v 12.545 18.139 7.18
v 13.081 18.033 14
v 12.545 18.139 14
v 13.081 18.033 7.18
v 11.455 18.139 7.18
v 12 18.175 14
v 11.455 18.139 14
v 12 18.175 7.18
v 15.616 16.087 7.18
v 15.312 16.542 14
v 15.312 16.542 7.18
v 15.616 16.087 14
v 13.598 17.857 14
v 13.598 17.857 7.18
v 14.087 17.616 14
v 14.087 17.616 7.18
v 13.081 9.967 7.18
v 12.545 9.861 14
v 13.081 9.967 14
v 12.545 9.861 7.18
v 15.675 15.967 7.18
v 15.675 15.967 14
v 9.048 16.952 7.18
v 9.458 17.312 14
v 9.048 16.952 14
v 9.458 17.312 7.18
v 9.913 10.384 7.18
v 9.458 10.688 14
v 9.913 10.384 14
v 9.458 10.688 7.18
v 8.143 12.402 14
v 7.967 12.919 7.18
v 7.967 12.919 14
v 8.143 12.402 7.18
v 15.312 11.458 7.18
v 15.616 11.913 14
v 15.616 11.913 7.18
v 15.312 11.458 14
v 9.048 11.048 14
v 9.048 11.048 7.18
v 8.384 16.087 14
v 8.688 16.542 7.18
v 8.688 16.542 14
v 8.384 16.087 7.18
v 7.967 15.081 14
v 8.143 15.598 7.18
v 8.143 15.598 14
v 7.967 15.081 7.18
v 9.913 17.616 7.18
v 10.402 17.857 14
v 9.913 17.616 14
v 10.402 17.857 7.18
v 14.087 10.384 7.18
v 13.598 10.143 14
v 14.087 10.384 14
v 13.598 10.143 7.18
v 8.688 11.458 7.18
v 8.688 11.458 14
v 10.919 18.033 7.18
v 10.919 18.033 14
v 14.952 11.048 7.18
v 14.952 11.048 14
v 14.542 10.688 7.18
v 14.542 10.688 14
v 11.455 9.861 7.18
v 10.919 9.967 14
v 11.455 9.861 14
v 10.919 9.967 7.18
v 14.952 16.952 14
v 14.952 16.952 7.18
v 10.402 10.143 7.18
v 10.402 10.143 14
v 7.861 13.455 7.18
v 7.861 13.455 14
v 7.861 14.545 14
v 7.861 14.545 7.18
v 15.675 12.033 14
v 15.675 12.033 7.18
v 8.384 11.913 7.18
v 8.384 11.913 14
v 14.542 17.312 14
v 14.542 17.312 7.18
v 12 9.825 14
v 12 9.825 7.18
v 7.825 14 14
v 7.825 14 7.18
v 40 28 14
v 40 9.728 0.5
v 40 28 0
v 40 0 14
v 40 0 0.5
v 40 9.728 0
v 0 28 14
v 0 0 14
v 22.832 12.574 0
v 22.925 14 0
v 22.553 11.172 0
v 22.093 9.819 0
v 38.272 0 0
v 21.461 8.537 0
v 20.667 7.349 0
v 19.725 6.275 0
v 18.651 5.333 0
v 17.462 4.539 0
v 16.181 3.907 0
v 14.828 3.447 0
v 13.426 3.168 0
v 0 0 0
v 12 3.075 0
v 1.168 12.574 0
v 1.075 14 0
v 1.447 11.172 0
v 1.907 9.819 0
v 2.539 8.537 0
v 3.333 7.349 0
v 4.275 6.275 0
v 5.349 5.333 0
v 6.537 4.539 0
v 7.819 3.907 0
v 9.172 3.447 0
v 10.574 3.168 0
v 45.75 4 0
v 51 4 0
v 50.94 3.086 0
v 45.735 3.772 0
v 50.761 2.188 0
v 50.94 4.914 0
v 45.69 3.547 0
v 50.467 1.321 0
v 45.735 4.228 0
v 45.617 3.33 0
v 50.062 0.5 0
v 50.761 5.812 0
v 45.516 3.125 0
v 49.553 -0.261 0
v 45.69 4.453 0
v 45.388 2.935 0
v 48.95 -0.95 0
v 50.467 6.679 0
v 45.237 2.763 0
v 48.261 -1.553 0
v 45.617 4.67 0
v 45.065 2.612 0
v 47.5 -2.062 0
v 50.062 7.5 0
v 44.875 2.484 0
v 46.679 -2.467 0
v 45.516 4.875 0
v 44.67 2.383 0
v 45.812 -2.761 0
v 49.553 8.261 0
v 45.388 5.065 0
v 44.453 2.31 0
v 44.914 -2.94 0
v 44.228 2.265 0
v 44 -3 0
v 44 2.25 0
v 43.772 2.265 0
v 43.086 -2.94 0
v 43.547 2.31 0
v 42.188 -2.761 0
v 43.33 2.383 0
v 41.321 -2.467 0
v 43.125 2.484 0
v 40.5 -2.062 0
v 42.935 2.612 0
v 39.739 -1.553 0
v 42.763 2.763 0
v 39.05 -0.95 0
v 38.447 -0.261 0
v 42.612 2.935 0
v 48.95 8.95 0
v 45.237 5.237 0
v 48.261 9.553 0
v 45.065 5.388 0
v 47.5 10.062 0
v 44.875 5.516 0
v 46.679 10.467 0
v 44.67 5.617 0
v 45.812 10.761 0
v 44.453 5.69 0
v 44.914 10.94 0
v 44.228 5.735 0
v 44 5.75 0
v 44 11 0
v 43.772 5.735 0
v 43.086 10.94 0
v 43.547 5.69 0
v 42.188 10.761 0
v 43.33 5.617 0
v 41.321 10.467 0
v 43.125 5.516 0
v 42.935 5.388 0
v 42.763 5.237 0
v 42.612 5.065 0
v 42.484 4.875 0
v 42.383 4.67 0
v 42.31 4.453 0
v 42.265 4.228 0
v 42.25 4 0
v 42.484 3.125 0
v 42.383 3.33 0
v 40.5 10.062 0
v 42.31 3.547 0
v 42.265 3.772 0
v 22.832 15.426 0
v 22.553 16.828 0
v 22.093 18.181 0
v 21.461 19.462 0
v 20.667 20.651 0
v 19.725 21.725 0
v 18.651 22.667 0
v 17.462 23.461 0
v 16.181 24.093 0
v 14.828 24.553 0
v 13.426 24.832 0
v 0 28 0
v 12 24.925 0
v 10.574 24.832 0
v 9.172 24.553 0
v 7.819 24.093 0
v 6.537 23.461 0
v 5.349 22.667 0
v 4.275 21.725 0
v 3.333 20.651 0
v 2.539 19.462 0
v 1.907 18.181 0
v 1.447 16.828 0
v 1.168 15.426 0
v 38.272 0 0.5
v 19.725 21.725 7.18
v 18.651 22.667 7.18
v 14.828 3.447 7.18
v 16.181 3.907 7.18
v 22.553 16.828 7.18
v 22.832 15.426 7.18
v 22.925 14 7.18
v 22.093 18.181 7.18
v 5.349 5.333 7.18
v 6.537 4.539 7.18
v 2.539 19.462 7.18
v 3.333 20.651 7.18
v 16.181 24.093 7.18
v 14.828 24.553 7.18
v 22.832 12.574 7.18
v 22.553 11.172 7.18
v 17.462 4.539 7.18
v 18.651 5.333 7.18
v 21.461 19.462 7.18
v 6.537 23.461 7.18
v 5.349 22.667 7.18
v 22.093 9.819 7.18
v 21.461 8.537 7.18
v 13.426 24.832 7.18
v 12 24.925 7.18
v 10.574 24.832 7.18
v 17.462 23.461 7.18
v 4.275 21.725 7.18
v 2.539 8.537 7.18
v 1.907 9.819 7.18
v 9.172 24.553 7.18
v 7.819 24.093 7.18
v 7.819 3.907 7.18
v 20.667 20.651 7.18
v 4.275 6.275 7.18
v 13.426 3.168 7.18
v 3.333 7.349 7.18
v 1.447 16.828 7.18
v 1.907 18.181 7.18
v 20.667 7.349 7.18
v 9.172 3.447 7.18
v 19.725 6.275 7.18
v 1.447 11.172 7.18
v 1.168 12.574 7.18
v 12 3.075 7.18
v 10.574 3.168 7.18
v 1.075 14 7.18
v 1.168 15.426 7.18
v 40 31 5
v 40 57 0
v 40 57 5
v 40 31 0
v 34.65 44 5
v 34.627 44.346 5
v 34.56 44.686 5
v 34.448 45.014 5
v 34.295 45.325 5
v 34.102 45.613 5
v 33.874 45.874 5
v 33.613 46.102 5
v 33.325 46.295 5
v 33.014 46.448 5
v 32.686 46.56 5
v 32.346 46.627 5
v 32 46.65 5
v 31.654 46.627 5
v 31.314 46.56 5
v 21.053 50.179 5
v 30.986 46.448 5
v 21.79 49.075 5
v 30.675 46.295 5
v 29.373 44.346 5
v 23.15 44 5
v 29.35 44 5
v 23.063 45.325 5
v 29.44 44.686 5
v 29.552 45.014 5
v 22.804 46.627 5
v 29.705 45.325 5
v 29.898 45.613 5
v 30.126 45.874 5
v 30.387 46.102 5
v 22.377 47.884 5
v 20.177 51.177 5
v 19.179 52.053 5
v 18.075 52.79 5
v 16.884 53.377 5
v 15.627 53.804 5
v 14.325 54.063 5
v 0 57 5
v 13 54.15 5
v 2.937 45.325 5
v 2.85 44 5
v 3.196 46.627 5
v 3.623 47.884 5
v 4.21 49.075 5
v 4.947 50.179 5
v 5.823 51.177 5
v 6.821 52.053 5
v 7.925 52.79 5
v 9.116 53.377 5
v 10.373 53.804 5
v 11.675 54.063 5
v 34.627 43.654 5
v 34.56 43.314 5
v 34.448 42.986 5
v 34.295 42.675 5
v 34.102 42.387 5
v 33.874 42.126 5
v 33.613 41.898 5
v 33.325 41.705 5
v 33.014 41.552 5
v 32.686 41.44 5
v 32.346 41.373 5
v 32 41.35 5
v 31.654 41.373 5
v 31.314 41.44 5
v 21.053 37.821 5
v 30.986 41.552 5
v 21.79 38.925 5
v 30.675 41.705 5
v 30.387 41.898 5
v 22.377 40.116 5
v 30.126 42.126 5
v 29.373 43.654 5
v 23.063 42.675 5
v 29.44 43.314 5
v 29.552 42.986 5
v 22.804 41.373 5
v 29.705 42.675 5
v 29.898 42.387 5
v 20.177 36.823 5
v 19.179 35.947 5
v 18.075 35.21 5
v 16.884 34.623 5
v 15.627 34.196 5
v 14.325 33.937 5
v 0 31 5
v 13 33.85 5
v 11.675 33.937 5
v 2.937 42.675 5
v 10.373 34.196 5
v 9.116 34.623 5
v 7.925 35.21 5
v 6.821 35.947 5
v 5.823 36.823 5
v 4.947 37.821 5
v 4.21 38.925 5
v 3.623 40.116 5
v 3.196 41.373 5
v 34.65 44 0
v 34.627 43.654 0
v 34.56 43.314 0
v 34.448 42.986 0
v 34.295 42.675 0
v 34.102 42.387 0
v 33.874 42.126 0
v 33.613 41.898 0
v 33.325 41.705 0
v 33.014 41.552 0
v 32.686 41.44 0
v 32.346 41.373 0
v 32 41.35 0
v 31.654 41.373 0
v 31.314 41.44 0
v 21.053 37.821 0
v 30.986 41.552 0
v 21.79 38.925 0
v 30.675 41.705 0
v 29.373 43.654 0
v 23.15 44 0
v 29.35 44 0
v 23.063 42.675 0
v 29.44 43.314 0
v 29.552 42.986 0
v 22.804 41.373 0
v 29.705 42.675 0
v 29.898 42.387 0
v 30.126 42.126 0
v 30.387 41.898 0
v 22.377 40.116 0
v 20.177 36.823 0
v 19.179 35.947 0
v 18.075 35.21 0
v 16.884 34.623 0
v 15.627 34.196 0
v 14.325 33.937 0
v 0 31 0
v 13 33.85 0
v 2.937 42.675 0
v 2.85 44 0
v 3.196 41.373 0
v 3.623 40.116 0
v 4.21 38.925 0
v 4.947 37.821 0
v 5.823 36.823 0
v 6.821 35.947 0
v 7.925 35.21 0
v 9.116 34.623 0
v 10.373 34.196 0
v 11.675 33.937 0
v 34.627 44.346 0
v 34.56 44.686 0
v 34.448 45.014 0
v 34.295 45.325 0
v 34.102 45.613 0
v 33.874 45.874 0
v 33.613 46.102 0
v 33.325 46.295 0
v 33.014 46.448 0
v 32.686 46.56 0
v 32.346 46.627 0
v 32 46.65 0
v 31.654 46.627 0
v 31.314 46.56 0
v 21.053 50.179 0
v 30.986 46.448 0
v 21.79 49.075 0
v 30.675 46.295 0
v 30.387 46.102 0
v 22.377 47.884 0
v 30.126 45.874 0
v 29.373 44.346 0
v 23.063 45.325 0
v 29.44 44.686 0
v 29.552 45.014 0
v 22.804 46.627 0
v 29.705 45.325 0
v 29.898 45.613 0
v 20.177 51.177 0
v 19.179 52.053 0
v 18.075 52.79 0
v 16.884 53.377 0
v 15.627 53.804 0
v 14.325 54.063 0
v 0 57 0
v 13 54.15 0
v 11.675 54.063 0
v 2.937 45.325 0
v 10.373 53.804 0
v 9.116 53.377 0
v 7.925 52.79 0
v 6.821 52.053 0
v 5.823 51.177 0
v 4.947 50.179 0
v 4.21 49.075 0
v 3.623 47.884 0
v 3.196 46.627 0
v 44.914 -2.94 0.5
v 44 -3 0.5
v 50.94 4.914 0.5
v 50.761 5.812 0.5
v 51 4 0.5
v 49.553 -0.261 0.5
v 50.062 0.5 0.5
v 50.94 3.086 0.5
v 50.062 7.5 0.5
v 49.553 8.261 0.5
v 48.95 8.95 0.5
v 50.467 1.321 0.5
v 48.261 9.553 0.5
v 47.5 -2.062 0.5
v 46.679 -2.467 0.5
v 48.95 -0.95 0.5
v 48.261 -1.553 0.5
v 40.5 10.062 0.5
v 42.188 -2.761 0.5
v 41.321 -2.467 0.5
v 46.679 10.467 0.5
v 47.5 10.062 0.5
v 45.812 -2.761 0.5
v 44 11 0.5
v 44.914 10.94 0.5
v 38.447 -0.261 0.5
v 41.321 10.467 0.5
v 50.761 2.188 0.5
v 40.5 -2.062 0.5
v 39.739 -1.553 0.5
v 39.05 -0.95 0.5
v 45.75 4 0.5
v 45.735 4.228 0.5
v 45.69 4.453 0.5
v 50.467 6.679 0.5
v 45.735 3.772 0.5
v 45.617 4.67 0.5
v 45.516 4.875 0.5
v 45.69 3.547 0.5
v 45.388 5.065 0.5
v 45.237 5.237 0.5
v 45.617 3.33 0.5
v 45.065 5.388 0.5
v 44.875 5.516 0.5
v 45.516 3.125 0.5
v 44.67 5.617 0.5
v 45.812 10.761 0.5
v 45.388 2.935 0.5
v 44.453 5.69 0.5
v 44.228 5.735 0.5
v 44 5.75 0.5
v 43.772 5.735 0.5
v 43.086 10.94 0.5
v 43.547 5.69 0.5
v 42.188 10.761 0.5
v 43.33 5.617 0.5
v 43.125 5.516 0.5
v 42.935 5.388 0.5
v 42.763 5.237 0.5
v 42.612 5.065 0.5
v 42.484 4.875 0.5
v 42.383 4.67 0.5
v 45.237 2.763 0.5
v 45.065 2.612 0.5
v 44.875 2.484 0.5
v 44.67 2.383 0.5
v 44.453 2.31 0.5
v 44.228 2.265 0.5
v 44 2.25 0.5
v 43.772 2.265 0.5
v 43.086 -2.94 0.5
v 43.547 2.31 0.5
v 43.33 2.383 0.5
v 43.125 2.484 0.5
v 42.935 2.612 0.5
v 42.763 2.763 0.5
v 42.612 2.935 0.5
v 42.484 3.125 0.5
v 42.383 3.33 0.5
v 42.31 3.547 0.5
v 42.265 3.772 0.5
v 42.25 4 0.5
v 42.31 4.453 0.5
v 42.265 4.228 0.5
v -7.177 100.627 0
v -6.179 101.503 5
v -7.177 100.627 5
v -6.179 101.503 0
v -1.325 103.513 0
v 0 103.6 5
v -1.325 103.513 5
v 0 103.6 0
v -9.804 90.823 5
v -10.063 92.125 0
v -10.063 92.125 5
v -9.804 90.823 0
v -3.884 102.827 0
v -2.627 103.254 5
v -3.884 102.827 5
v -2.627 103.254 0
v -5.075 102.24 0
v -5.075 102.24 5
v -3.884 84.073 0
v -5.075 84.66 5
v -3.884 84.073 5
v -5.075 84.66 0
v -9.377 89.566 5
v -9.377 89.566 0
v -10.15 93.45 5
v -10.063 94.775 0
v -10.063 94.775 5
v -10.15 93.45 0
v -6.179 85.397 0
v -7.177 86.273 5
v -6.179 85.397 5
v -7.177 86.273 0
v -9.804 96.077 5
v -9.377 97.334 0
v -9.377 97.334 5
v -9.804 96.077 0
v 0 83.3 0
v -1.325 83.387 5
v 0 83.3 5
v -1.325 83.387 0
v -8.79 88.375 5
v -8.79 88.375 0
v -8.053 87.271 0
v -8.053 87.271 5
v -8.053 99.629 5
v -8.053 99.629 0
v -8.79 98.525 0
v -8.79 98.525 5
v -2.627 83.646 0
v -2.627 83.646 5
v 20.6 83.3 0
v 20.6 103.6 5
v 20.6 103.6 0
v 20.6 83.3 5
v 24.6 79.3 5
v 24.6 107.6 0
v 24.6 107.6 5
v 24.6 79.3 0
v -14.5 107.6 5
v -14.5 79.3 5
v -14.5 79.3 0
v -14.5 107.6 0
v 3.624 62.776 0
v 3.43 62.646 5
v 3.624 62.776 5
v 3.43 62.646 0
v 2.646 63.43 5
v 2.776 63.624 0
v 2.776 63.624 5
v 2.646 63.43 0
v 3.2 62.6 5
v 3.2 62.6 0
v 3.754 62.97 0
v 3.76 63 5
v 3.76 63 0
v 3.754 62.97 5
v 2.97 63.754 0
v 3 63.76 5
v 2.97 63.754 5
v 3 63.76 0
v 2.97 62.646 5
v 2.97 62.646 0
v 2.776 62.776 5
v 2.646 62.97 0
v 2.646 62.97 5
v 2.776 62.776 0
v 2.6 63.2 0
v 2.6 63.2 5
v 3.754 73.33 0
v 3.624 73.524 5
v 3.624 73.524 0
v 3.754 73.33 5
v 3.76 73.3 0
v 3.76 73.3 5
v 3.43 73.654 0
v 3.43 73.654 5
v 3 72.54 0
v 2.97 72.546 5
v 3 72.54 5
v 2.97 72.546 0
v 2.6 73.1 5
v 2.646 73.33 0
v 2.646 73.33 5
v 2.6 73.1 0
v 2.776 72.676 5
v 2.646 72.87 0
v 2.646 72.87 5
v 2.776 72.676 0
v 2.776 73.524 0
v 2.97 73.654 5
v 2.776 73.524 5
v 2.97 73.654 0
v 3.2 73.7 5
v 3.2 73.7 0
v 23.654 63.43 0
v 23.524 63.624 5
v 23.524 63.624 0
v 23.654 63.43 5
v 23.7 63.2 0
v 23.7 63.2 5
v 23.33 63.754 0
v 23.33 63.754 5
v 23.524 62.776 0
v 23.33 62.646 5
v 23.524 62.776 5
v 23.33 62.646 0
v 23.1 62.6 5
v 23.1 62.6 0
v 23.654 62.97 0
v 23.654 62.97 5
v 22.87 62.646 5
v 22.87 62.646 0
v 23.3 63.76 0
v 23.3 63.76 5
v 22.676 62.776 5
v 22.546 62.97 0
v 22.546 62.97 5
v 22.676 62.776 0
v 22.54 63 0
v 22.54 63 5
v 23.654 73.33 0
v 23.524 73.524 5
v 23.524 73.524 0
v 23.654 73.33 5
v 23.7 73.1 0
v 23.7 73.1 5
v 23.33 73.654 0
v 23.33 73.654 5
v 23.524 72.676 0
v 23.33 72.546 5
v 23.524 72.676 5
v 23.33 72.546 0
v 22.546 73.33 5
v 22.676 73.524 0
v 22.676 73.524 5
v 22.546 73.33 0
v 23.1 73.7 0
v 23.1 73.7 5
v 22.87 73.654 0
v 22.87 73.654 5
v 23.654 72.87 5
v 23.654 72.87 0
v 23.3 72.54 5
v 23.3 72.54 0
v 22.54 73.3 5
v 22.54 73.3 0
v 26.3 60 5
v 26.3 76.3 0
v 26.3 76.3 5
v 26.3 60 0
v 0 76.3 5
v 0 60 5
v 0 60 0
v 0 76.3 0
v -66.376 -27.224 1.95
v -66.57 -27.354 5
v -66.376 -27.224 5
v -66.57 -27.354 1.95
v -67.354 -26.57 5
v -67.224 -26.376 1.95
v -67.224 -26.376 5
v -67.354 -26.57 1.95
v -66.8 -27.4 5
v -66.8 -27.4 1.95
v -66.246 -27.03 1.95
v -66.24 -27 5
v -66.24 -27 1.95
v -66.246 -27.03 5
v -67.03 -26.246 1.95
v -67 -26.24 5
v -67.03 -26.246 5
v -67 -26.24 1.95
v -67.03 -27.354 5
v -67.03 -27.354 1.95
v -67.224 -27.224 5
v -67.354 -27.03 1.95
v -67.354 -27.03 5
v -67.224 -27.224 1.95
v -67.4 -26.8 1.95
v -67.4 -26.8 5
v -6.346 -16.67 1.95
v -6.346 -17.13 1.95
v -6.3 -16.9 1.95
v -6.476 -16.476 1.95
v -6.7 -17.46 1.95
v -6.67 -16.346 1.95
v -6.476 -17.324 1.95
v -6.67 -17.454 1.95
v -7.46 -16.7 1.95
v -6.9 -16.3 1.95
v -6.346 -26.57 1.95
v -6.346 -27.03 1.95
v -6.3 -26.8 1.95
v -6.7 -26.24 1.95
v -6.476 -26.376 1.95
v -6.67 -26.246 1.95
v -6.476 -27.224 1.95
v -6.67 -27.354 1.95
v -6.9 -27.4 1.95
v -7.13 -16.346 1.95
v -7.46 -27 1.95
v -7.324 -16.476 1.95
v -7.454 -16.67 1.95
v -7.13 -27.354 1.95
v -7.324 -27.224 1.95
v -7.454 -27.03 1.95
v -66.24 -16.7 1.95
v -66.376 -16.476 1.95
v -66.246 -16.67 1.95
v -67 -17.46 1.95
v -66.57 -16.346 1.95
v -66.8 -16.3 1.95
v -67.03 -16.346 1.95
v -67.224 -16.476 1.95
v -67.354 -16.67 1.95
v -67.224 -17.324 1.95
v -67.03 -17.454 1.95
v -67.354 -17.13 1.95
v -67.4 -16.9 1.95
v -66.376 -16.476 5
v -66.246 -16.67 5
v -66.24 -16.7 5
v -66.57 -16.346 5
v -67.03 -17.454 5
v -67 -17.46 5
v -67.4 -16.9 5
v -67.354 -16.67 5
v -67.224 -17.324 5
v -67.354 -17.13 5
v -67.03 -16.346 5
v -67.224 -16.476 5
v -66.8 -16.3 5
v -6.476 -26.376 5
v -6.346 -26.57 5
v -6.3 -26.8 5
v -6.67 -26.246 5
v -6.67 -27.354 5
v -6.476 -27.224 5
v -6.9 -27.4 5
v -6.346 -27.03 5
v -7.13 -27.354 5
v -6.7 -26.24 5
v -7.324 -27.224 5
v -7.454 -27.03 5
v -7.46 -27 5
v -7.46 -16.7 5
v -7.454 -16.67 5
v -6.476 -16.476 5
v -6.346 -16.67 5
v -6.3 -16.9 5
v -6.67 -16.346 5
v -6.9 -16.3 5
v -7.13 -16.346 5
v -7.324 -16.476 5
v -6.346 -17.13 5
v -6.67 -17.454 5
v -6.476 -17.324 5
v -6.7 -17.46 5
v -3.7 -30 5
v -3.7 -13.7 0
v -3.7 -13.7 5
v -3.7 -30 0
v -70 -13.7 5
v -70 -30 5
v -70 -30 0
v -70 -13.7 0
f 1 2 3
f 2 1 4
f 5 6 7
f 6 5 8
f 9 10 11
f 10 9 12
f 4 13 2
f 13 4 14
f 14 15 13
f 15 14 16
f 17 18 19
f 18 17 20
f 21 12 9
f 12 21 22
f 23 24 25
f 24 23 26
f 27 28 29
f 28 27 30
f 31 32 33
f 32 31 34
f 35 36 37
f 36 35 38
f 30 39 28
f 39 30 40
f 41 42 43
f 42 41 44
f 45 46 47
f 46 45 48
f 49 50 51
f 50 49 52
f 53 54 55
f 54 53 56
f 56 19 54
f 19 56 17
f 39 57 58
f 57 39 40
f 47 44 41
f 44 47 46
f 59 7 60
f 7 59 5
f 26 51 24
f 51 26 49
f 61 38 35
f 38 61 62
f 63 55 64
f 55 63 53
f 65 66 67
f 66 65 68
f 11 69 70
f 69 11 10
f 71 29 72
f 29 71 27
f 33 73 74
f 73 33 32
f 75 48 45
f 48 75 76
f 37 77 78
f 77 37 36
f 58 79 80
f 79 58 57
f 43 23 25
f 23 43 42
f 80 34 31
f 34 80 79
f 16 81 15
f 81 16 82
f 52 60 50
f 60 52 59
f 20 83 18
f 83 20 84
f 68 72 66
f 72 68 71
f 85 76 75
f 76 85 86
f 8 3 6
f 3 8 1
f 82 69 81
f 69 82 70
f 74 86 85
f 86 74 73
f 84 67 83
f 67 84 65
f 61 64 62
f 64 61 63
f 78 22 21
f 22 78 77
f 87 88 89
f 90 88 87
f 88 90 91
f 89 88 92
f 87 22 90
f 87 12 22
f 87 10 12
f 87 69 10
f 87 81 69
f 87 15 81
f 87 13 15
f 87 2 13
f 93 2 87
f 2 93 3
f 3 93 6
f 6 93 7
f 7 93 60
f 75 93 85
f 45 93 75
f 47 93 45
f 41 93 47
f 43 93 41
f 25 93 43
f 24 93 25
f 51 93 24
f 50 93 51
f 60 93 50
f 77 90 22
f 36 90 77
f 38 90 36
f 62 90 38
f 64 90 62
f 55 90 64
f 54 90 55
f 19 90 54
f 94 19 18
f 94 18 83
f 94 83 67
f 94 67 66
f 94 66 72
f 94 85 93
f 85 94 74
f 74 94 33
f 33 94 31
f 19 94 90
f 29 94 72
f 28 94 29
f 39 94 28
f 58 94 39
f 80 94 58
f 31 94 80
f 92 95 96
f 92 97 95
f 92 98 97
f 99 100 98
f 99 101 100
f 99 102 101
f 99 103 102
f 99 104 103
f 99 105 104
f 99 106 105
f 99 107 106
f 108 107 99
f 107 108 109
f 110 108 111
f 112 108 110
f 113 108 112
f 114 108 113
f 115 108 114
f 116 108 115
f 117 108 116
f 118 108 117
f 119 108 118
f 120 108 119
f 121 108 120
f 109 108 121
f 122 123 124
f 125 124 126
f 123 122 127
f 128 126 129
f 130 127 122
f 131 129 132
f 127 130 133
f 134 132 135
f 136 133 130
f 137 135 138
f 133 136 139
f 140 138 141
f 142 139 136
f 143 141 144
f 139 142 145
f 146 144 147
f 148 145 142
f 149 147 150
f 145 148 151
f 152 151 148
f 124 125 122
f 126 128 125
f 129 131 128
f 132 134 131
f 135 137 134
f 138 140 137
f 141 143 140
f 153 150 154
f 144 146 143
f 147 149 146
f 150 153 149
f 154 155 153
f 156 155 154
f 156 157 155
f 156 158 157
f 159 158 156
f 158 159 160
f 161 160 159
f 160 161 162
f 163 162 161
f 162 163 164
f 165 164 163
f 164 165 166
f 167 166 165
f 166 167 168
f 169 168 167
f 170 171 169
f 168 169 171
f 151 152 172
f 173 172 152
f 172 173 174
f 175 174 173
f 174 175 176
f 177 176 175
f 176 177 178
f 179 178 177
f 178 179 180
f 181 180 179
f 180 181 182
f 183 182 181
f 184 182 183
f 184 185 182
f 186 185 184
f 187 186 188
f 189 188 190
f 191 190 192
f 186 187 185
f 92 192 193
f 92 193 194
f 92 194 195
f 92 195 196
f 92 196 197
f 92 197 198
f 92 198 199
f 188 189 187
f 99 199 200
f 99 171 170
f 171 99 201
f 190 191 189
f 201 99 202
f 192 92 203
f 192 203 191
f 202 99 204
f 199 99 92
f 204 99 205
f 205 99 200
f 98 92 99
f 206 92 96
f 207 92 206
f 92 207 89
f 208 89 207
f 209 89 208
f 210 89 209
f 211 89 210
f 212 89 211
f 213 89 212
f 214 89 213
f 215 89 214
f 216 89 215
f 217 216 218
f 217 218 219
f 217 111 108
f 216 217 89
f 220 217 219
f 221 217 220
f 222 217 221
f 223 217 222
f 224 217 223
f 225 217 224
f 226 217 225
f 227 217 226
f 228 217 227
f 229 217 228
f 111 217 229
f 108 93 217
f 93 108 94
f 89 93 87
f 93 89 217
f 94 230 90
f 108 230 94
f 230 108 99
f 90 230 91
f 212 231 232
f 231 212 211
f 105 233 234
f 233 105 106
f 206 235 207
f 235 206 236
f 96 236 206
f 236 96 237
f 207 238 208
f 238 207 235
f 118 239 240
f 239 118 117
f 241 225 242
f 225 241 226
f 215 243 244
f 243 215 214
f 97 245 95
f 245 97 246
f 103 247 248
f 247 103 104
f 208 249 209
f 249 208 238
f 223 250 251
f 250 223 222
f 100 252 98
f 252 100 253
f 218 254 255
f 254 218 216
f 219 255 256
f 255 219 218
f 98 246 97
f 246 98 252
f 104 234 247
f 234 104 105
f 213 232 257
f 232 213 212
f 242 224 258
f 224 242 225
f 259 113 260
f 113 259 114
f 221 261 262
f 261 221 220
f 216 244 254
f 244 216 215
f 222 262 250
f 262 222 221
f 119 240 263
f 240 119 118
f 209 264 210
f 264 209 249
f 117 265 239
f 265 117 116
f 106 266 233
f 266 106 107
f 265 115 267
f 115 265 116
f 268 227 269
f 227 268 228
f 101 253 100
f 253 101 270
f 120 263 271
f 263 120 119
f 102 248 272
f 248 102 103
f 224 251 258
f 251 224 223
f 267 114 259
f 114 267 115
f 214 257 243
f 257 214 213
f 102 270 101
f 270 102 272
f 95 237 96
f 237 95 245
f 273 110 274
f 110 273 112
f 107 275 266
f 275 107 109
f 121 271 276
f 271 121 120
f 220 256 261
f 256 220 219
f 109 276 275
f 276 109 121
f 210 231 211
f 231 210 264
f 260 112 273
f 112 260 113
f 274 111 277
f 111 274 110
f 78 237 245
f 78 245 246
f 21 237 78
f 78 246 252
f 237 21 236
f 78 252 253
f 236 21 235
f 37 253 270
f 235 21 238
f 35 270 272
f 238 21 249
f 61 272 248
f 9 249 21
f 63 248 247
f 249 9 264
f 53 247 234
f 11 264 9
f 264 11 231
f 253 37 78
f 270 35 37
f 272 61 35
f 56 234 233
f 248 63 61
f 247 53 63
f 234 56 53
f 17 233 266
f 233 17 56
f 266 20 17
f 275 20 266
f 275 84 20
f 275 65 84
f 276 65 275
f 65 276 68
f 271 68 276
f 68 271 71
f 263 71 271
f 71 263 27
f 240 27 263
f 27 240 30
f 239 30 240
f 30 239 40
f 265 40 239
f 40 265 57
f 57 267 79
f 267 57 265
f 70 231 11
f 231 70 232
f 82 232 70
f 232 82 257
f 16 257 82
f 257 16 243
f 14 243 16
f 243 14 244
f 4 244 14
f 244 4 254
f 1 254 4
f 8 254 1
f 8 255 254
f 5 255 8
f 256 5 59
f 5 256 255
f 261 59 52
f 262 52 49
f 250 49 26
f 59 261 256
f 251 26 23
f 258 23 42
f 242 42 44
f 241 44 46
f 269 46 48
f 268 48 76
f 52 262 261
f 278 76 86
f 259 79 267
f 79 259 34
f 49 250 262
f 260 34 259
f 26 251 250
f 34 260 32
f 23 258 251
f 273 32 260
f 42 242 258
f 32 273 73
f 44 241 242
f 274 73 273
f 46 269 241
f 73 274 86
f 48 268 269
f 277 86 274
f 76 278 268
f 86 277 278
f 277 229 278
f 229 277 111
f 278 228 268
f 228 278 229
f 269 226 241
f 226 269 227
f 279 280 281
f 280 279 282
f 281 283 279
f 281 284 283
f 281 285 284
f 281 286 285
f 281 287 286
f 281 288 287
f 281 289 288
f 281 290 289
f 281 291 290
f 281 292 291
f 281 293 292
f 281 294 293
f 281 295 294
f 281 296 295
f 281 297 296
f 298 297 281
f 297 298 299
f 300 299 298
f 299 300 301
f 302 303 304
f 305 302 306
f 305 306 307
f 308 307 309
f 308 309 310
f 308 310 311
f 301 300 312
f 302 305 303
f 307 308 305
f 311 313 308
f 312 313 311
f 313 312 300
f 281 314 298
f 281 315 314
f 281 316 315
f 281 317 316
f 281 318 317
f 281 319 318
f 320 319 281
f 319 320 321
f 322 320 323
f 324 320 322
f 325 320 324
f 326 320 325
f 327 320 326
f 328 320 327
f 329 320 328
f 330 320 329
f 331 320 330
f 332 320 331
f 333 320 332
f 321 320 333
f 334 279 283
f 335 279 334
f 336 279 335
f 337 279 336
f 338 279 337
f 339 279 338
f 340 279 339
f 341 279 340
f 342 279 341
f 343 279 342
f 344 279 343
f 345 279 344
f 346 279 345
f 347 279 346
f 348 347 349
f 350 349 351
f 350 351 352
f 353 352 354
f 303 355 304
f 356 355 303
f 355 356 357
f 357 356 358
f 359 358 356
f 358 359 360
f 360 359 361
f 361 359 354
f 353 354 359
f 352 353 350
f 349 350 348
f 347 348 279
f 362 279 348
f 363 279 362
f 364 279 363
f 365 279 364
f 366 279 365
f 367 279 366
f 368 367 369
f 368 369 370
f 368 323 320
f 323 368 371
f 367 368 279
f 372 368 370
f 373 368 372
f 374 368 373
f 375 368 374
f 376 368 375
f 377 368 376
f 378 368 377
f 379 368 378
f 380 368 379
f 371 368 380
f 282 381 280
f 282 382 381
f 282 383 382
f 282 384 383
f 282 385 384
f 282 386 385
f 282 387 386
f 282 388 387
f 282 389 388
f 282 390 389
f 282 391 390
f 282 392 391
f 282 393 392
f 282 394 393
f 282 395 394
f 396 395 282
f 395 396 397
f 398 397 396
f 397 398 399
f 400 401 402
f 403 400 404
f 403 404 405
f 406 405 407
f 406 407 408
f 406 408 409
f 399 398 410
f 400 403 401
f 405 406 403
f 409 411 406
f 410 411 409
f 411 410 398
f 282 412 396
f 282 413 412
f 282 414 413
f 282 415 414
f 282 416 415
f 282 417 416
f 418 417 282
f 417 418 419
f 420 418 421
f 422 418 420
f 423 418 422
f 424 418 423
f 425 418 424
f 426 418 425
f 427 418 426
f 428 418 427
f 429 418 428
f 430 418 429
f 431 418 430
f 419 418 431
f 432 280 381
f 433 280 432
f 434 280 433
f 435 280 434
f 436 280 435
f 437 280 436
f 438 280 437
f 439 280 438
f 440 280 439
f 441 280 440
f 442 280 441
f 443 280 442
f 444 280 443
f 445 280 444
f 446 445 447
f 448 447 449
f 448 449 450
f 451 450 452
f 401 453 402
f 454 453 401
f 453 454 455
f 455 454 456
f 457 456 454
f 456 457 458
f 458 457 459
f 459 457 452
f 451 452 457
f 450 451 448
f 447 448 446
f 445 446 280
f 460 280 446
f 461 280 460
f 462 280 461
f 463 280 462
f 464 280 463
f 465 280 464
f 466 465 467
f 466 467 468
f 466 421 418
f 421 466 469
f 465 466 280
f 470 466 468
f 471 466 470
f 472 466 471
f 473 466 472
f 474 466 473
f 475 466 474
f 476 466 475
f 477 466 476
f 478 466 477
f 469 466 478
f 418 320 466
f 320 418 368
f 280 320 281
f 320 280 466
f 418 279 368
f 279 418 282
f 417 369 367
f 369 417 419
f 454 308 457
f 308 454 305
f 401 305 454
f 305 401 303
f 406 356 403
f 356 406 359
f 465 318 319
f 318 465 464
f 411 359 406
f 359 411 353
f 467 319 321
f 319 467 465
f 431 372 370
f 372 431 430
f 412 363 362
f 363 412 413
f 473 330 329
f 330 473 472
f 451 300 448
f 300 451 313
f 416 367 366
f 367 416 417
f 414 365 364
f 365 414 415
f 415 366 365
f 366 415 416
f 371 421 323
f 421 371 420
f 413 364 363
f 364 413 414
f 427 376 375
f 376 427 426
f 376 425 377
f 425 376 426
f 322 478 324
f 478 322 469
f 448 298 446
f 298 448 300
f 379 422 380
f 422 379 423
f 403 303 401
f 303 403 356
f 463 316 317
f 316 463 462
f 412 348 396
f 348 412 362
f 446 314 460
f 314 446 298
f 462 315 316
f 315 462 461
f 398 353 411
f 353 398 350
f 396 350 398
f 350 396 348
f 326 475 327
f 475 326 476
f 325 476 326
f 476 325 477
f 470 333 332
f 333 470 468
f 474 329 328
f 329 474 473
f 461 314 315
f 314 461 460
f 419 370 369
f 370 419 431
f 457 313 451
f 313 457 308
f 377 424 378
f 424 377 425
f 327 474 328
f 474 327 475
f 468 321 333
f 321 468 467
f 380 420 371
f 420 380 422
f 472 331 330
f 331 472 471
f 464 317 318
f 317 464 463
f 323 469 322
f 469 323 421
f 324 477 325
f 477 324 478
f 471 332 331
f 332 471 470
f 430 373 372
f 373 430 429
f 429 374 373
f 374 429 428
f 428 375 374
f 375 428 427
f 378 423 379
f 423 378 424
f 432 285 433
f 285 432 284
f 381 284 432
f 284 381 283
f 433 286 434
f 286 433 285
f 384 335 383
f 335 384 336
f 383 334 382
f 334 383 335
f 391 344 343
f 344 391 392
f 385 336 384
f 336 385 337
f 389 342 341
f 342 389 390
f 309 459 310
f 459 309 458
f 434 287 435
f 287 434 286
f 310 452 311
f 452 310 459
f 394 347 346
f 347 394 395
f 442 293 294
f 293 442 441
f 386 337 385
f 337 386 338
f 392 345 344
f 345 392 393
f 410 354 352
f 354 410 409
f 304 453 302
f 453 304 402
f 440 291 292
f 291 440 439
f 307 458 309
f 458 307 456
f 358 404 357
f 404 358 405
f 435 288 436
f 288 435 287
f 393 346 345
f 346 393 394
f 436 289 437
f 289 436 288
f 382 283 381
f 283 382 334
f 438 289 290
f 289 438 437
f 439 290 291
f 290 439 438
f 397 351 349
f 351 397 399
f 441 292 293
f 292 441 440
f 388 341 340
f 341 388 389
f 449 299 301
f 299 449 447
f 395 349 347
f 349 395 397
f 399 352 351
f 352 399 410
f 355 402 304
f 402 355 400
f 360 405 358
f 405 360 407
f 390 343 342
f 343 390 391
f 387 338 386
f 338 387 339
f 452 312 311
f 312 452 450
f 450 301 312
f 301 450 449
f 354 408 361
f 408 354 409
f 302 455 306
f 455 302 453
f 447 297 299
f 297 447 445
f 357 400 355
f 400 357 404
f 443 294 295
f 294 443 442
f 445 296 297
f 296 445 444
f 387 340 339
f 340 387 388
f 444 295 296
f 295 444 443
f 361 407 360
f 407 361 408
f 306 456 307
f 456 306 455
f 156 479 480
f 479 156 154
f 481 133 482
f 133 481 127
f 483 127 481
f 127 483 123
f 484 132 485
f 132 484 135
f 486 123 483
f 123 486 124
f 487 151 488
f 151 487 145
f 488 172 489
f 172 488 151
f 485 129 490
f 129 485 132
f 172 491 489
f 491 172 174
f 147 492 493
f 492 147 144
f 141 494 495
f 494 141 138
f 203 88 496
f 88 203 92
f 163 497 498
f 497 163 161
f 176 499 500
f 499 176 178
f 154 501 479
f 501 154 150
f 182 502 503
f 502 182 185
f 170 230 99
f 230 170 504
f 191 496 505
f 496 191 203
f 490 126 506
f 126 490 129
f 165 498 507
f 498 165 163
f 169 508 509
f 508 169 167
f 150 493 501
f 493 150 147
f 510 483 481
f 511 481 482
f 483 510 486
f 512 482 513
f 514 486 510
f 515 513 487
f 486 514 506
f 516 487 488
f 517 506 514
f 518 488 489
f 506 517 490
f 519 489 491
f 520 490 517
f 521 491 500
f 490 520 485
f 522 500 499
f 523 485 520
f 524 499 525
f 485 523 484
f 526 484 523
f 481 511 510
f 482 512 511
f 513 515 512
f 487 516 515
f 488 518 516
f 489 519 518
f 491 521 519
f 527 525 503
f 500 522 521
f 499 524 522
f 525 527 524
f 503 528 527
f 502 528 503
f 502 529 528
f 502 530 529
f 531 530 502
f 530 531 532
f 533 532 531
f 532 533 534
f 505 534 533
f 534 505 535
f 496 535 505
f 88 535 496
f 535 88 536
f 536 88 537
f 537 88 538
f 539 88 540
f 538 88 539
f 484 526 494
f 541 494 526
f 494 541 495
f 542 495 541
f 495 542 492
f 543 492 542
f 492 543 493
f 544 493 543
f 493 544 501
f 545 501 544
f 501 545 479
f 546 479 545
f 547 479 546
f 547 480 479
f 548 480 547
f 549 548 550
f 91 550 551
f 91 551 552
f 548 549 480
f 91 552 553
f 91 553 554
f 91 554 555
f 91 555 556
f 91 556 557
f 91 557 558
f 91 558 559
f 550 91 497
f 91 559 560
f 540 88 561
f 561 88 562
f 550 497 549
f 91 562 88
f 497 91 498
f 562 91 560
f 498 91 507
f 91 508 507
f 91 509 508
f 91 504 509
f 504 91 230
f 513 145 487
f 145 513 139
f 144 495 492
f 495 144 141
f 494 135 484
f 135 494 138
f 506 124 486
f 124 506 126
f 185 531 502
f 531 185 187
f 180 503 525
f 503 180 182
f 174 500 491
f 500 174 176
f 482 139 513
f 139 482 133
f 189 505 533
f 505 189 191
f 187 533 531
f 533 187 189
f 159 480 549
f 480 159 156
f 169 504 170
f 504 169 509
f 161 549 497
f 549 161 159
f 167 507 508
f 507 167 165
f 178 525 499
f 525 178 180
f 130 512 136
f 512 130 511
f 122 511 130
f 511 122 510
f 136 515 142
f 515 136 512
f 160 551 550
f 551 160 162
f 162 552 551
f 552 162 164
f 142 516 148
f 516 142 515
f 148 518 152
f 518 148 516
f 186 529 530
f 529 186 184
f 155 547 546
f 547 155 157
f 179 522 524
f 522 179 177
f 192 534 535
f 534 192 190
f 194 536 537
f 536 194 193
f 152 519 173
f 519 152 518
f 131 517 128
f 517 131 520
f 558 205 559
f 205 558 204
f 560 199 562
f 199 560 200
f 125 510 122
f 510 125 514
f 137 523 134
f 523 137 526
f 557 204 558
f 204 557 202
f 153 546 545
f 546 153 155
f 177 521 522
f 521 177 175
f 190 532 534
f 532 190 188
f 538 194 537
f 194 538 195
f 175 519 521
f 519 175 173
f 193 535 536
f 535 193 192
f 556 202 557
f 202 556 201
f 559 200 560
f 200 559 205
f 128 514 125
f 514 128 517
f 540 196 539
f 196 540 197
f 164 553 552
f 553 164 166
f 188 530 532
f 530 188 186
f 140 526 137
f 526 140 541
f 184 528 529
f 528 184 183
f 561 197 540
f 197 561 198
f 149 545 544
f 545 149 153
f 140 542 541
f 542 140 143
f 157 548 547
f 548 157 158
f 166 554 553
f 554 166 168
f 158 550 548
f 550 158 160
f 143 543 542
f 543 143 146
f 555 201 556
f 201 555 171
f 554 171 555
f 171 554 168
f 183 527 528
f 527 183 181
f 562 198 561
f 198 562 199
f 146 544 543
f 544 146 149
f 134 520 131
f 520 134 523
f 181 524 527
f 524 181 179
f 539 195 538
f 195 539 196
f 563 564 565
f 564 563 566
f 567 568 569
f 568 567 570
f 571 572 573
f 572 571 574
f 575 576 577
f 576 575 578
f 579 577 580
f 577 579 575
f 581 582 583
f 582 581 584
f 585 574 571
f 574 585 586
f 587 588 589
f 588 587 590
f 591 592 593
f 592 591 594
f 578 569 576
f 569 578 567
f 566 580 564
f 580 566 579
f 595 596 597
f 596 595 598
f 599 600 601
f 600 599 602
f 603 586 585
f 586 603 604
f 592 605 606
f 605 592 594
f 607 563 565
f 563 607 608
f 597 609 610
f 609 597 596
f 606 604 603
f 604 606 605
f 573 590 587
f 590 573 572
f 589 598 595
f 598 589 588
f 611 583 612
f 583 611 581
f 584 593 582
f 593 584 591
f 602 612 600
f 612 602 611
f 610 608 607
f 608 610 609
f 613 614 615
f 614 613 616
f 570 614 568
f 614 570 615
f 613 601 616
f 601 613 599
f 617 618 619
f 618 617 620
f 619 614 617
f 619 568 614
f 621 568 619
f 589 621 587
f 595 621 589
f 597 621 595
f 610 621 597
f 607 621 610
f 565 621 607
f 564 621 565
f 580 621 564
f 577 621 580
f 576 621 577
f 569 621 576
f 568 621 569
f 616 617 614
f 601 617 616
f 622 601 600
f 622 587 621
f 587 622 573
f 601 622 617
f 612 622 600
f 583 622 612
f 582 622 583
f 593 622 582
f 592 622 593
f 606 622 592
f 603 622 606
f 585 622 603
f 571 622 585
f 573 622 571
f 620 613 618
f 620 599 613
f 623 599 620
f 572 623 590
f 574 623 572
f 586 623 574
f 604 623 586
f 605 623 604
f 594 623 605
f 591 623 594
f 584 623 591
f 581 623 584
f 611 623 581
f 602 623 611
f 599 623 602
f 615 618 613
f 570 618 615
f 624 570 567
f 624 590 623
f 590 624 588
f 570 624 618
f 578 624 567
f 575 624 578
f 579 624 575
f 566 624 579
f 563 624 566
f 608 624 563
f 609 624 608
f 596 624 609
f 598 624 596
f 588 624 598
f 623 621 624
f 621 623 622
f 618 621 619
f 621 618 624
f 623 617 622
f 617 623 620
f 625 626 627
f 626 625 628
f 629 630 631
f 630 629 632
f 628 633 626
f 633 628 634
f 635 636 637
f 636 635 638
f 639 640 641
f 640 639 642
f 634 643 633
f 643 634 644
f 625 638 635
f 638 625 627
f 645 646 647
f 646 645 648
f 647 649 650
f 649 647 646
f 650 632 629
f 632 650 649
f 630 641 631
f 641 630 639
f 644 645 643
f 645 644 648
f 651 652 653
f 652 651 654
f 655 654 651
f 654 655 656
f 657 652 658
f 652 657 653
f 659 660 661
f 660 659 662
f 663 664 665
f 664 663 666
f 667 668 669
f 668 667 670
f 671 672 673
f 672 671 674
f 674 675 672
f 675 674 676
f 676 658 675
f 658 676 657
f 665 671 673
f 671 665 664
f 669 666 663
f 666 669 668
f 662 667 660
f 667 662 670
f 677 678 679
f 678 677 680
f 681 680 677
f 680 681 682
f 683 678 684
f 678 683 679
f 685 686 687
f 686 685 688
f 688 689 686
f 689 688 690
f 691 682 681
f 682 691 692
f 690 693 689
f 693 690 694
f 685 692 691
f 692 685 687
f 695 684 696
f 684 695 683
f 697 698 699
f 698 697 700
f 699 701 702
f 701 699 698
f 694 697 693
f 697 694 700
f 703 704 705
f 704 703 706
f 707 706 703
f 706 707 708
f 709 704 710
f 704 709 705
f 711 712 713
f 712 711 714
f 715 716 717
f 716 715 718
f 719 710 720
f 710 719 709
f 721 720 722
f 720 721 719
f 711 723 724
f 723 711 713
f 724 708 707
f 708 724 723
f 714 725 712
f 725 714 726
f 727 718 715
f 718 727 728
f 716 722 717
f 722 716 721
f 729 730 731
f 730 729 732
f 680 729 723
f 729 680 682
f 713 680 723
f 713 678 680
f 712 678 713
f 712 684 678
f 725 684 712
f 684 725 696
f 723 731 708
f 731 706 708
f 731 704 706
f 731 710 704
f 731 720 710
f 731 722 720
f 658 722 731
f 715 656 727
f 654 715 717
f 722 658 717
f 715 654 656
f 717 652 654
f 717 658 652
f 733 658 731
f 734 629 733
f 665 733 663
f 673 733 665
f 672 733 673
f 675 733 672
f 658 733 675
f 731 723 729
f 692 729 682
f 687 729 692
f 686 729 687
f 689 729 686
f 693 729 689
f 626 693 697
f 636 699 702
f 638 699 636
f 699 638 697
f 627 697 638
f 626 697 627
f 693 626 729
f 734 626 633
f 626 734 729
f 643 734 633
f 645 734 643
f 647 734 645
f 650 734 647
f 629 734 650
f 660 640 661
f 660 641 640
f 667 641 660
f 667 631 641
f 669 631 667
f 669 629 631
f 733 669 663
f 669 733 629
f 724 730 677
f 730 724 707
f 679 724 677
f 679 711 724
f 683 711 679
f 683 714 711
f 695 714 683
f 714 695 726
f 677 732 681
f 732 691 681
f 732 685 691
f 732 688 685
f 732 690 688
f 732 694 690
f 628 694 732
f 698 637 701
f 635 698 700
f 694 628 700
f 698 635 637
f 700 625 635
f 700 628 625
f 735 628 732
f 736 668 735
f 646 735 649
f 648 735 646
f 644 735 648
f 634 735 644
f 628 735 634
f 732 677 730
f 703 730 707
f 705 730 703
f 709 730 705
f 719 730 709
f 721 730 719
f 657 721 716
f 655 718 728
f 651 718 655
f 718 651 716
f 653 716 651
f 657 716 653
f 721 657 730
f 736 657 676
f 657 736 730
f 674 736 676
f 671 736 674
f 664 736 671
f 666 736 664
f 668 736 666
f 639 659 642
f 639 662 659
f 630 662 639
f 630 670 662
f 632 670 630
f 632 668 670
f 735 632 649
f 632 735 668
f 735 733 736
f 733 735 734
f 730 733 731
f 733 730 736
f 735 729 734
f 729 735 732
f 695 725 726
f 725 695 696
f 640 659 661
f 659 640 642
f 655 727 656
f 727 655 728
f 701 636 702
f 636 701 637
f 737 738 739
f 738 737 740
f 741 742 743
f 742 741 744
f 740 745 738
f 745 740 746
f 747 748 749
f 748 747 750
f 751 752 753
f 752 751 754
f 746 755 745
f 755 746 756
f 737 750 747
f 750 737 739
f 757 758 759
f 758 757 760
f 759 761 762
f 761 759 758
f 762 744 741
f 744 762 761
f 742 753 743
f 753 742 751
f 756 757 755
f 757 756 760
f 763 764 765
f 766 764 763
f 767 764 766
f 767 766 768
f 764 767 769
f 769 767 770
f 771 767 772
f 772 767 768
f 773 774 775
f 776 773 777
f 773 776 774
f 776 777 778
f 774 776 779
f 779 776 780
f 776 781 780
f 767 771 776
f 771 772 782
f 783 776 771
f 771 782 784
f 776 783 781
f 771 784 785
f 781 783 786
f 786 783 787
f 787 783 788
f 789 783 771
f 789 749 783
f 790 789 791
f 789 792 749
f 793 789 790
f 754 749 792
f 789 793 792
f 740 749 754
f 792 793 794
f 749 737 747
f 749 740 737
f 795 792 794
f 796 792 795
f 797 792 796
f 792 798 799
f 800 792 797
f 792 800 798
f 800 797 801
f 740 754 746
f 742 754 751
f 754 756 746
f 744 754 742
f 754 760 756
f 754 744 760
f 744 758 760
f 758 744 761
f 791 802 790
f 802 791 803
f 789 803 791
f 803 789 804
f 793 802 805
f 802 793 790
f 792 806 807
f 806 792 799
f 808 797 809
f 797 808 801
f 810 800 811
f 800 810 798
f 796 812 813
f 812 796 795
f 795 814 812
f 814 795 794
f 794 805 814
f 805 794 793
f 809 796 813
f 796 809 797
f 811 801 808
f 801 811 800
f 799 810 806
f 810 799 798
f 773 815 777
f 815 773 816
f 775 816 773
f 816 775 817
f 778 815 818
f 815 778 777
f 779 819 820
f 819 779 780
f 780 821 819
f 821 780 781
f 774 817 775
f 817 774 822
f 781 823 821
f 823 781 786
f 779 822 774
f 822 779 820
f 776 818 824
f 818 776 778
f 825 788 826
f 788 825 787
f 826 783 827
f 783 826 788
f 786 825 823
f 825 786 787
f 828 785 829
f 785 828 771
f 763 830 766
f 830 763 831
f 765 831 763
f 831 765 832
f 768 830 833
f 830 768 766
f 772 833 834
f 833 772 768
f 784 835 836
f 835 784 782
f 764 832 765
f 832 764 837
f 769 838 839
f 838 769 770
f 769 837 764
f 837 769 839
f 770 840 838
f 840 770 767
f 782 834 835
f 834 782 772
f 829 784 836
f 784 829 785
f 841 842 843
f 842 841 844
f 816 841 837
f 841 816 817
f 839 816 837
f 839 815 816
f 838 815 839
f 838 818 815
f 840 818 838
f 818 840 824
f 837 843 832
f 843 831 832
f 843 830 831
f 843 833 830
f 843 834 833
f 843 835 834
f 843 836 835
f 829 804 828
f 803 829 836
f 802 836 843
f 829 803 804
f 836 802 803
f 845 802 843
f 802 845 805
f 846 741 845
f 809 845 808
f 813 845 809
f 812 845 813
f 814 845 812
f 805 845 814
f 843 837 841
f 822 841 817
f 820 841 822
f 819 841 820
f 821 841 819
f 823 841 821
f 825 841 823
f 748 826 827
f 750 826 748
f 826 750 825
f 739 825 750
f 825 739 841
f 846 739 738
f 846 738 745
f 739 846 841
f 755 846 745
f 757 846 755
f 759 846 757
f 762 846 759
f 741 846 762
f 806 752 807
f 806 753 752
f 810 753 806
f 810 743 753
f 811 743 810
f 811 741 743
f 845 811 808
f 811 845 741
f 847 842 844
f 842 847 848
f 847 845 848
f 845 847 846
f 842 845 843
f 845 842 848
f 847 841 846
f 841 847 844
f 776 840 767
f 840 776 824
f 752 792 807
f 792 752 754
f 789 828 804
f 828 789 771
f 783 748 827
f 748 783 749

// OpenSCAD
// Gen-CY — fit coupon: O20/O5 THROUGH pockets at carrier thickness (test on a steel offcut), 608 seat,
// D-flat bore, gap shim, and one bobbin-bay slice (bobbin footprint + bay_clear) to test former fit.
include <parameters.scad>;
$fn = 48;
// D-flat keyed bore: flat faces +X (angle 0 = magnet pocket 0 = index notch)
module dflat_bore(h) {
    intersection() {
        cylinder(d=shaft_bore, h=h);
        translate([-shaft_bore, -shaft_bore, 0]) cube([shaft_bore + dflat_x, 2*shaft_bore, h]);
    }
}
module sector_2d(r_in, r_out, ang) {
    polygon([
        for (a = [-ang/2 : ang/24 : ang/2]) [r_in*cos(a), r_in*sin(a)],
        for (a = [ang/2 : -ang/24 : -ang/2]) [r_out*cos(a), r_out*sin(a)]
    ]);
}
module footprint_2d() { offset(r=wall) sector_2d(coil_id_r, coil_od_r, span_deg); }
module hub_2d()       { offset(delta=-coil_core_inset) sector_2d(coil_id_r, coil_od_r, span_deg); }

block_w = 40; block_d = 28; block_h = 14;
difference() {
    cube([block_w, block_d, block_h]);
    translate([12, block_d/2, -0.02]) cylinder(d=bearing_d, h=bearing_h);
    translate([12, block_d/2, -0.1]) dflat_bore(block_h + 1);
}
translate([0, block_d + 3, 0]) difference() {
    cube([40, 26, carrier_thick]);
    translate([13, 13, -0.1]) cylinder(d=large_pocket_d, h=carrier_thick + 0.2);
    translate([32, 13, -0.1]) cylinder(d=small_pocket_d, h=carrier_thick + 0.2);
}
translate([block_w + 4, 4, 0])
    difference() {
        cylinder(d=spacer_pad_od, h=gap_spacer_h);
        translate([0, 0, -0.1]) cylinder(d=spacer_pad_id, h=gap_spacer_h + 0.2);
    }
// KEYHOLE pole pocket test (2026-10-18): O20 disc pocket + N42 20x10x5 block pocket merged (hull), as on the arcs.
// Drop a disc and a block in: they must push each other onto the two far walls and sit flat. Block pocket has corner reliefs.
translate([0, block_d + 3 + 26 + 3 + block_radial + block_pocket_clear + 6 + 3 + max(block_tangential, large_pocket_d) / 2 + 4, 0]) difference() {
    translate([-14.5, -(max(block_tangential, large_pocket_d) / 2 + 4), 0]) cube([14.5 + abs(block_R_list[0] - R_large) + block_radial / 2 + 4, max(block_tangential, large_pocket_d) + 8, carrier_thick]);
    translate([0, 0, -0.1]) {
        translate([disc_pocket_shift * sign(block_R_list[0] - R_large), 0, 0]) cylinder(d=large_pocket_d, h=carrier_thick + 0.2);
        translate([disc_pocket_shift * sign(block_R_list[0] - R_large), -(block_tangential + block_pocket_clear)/2, 0])
            cube([abs(block_R_list[0] - R_large) - abs(block_pocket_shift) + (block_radial + block_pocket_clear)/2 - disc_pocket_shift * sign(block_R_list[0] - R_large), block_tangential + block_pocket_clear, carrier_thick + 0.2]);
    }
}
// N42 20x10x5 BLOCK through-pocket test (block + block_pocket_clear, 1.2 mm corner reliefs), 2026-10-16
translate([0, block_d + 3 + 26 + 3, 0]) difference() {
    cube([block_tangential + block_pocket_clear + 6, block_radial + block_pocket_clear + 6, carrier_thick]);
    translate([3, 3, -0.1]) cube([block_tangential + block_pocket_clear, block_radial + block_pocket_clear, carrier_thick + 0.2]);
    for (x = [3.2, 3 + block_tangential + block_pocket_clear - 0.2], y = [3.2, 3 + block_radial + block_pocket_clear - 0.2])
        translate([x, y, -0.1]) cylinder(d=1.2, h=carrier_thick + 0.2, $fn=16);
}
// N52 60x10x3 BAR blind-pocket test (2026-10-21): bar + 0.3 mm, depth block2_pocket_depth: the bar face must sit flush with the top.
translate([-70, -30, 0]) difference() {
    cube([block2_tangential + block2_pocket_clear + 6, block2_radial + block2_pocket_clear + 6, carrier_thick]);
    translate([3, 3, carrier_thick - block2_pocket_depth]) cube([block2_tangential + block2_pocket_clear, block2_radial + block2_pocket_clear, carrier_thick]);
    for (x = [3.2, 3 + block2_tangential + block2_pocket_clear - 0.2], y = [3.2, 3 + block2_radial + block2_pocket_clear - 0.2])
        translate([x, y, carrier_thick - block2_pocket_depth]) cylinder(d=1.2, h=carrier_thick, $fn=16);
}
